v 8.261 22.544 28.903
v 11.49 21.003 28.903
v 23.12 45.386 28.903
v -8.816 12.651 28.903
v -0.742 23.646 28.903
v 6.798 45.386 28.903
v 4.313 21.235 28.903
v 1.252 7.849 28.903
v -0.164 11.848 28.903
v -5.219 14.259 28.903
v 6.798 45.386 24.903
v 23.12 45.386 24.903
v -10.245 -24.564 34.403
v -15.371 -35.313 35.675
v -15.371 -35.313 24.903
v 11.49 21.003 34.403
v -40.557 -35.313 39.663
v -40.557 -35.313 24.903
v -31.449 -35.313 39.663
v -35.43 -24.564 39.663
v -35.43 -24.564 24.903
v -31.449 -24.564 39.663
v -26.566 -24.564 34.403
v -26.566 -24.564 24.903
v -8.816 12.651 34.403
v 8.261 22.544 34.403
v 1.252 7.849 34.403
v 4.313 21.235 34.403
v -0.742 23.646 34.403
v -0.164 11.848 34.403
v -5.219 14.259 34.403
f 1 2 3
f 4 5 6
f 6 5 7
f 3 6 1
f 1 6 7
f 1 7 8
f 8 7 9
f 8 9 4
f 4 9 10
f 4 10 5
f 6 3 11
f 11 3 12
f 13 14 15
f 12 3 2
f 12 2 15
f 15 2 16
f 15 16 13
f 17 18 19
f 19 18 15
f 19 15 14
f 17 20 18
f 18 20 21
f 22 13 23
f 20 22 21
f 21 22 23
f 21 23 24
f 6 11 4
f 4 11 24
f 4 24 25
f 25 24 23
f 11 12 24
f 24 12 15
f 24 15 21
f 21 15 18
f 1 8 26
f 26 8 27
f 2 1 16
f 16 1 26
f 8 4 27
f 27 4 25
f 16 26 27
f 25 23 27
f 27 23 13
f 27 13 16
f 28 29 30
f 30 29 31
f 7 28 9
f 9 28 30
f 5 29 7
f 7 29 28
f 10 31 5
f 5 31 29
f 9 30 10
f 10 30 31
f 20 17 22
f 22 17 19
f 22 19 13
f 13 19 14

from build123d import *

# Parameters (mm, degrees)
BOSS_EXTRUDE1_DEPTH = 4
BOSS_EXTRUDE2_DEPTH = 5.5
BOSS_EXTRUDE3_DEPTH = 5.26
CUT_EXTRUDE1_DEPTH  = 25.26
SKETCH5_W           = 16.298124665
SKETCH5_H           = 32.903045357
BOSS_EXTRUDE4_DEPTH = 10
SKETCH6_W           = 73.83328153
SKETCH6_H           = 41.567802575
CUT_EXTRUDE2_DEPTH  = 120
SKETCH7_W           = 16.298124665
SKETCH7_H           = 10
CUT_EXTRUDE3_DEPTH  = 120


with BuildPart() as part:
    # Sketch1 → Boss-Extrude1 (new body)
    with BuildSketch(Plane.XY):
        Polygon((6.798067323, 45.385579117), (-26.566371189, -24.564420883), (-35.429799542, -24.564420883), (-40.556683823, -35.313157307), (-15.371402202, -35.313157307), (23.119920592, 45.385579117), align=None)
    boss_extrude1 = extrude(amount=-BOSS_EXTRUDE1_DEPTH)

    # Sketch2 → Boss-Extrude2 (add)
    with BuildSketch(Plane(origin=(0, 0, -4), x_dir=(-1, 0, 0), z_dir=(0, 0, -1))):
        Polygon((5.218881417, 14.259069333), (0.74156601, 23.645956291), (-4.312911582, 21.235094148), (0.164403825, 11.848207191), align=None)
        Polygon((40.556683823, -35.313157307), (35.429799542, -24.564420883), (26.566371189, -24.564420883), (8.815605583, 12.650833126), (-1.251818738, 7.848918048), (-8.260923666, 22.543811707), (-11.490263359, 21.003495686), (15.371402202, -35.313157307), align=None)
    boss_extrude2 = extrude(amount=BOSS_EXTRUDE2_DEPTH)

    # Sketch3 → Boss-Extrude3 (add)
    with BuildSketch(Plane(origin=(0, 0, -9.5), x_dir=(-1, 0, 0), z_dir=(0, 0, -1))):
        Polygon((40.556683823, -35.313157307), (35.429799542, -24.564420883), (10.244517921, -24.564420883), (15.371402202, -35.313157307), align=None)
    boss_extrude3 = extrude(amount=BOSS_EXTRUDE3_DEPTH)

    # Sketch4 → Cut-Extrude1 (cut)
    with BuildSketch(Plane.XZ.offset(35.313157307)):
        Polygon((-31.448639935, -14.76), (-10.244517921, -9.5), (-10.244517921, -14.76), align=None)
    cut_extrude1 = extrude(amount=-CUT_EXTRUDE1_DEPTH, mode=Mode.SUBTRACT)


with BuildPart() as body_2:
    # Sketch5 → Boss-Extrude4 (new body)
    with BuildSketch(Plane(origin=(0, 45.385579117, 0), x_dir=(1, 0, 0), z_dir=(0, 1, 0))):
        with Locations((14.947129656, -12.451522679)):
            Rectangle(SKETCH5_W, SKETCH5_H)
    extrude(amount=BOSS_EXTRUDE4_DEPTH)

    # Mirror8: Boss-Extrude1, Boss-Extrude2, Boss-Extrude3, Cut-Extrude1 across plane
    add(boss_extrude1.mirror(Plane.XY.offset(12.451522678)))
    add(boss_extrude2.mirror(Plane.XY.offset(12.451522678)))
    add(boss_extrude3.mirror(Plane.XY.offset(12.451522678)))
    add(cut_extrude1.mirror(Plane.XY.offset(12.451522678)), mode=Mode.SUBTRACT)


with BuildPart() as cut_extrude2_tool:
    # Sketch6 → Cut-Extrude2 (new body)
    with BuildSketch(Plane.XZ.offset(35.313157307)):
        with Locations((-3.640043058, 4.119144069)):
            Rectangle(SKETCH6_W, SKETCH6_H)
    extrude(amount=-CUT_EXTRUDE2_DEPTH)


with BuildPart() as part_1:
    add(part.part)

    # Cut-Extrude2: cut by cut_extrude2_tool
    add(cut_extrude2_tool.part, mode=Mode.SUBTRACT)


with BuildPart() as body_2_1:
    add(body_2.part)

    # Cut-Extrude2: cut by cut_extrude2_tool
    add(cut_extrude2_tool.part, mode=Mode.SUBTRACT)

    # Sketch7 → Cut-Extrude3 (cut)
    with BuildSketch(Plane.XY.offset(28.903045357)):
        with Locations((14.947129656, 50.385579117)):
            Rectangle(SKETCH7_W, SKETCH7_H)
    extrude(amount=-CUT_EXTRUDE3_DEPTH, mode=Mode.SUBTRACT)


solid = body_2_1.part
